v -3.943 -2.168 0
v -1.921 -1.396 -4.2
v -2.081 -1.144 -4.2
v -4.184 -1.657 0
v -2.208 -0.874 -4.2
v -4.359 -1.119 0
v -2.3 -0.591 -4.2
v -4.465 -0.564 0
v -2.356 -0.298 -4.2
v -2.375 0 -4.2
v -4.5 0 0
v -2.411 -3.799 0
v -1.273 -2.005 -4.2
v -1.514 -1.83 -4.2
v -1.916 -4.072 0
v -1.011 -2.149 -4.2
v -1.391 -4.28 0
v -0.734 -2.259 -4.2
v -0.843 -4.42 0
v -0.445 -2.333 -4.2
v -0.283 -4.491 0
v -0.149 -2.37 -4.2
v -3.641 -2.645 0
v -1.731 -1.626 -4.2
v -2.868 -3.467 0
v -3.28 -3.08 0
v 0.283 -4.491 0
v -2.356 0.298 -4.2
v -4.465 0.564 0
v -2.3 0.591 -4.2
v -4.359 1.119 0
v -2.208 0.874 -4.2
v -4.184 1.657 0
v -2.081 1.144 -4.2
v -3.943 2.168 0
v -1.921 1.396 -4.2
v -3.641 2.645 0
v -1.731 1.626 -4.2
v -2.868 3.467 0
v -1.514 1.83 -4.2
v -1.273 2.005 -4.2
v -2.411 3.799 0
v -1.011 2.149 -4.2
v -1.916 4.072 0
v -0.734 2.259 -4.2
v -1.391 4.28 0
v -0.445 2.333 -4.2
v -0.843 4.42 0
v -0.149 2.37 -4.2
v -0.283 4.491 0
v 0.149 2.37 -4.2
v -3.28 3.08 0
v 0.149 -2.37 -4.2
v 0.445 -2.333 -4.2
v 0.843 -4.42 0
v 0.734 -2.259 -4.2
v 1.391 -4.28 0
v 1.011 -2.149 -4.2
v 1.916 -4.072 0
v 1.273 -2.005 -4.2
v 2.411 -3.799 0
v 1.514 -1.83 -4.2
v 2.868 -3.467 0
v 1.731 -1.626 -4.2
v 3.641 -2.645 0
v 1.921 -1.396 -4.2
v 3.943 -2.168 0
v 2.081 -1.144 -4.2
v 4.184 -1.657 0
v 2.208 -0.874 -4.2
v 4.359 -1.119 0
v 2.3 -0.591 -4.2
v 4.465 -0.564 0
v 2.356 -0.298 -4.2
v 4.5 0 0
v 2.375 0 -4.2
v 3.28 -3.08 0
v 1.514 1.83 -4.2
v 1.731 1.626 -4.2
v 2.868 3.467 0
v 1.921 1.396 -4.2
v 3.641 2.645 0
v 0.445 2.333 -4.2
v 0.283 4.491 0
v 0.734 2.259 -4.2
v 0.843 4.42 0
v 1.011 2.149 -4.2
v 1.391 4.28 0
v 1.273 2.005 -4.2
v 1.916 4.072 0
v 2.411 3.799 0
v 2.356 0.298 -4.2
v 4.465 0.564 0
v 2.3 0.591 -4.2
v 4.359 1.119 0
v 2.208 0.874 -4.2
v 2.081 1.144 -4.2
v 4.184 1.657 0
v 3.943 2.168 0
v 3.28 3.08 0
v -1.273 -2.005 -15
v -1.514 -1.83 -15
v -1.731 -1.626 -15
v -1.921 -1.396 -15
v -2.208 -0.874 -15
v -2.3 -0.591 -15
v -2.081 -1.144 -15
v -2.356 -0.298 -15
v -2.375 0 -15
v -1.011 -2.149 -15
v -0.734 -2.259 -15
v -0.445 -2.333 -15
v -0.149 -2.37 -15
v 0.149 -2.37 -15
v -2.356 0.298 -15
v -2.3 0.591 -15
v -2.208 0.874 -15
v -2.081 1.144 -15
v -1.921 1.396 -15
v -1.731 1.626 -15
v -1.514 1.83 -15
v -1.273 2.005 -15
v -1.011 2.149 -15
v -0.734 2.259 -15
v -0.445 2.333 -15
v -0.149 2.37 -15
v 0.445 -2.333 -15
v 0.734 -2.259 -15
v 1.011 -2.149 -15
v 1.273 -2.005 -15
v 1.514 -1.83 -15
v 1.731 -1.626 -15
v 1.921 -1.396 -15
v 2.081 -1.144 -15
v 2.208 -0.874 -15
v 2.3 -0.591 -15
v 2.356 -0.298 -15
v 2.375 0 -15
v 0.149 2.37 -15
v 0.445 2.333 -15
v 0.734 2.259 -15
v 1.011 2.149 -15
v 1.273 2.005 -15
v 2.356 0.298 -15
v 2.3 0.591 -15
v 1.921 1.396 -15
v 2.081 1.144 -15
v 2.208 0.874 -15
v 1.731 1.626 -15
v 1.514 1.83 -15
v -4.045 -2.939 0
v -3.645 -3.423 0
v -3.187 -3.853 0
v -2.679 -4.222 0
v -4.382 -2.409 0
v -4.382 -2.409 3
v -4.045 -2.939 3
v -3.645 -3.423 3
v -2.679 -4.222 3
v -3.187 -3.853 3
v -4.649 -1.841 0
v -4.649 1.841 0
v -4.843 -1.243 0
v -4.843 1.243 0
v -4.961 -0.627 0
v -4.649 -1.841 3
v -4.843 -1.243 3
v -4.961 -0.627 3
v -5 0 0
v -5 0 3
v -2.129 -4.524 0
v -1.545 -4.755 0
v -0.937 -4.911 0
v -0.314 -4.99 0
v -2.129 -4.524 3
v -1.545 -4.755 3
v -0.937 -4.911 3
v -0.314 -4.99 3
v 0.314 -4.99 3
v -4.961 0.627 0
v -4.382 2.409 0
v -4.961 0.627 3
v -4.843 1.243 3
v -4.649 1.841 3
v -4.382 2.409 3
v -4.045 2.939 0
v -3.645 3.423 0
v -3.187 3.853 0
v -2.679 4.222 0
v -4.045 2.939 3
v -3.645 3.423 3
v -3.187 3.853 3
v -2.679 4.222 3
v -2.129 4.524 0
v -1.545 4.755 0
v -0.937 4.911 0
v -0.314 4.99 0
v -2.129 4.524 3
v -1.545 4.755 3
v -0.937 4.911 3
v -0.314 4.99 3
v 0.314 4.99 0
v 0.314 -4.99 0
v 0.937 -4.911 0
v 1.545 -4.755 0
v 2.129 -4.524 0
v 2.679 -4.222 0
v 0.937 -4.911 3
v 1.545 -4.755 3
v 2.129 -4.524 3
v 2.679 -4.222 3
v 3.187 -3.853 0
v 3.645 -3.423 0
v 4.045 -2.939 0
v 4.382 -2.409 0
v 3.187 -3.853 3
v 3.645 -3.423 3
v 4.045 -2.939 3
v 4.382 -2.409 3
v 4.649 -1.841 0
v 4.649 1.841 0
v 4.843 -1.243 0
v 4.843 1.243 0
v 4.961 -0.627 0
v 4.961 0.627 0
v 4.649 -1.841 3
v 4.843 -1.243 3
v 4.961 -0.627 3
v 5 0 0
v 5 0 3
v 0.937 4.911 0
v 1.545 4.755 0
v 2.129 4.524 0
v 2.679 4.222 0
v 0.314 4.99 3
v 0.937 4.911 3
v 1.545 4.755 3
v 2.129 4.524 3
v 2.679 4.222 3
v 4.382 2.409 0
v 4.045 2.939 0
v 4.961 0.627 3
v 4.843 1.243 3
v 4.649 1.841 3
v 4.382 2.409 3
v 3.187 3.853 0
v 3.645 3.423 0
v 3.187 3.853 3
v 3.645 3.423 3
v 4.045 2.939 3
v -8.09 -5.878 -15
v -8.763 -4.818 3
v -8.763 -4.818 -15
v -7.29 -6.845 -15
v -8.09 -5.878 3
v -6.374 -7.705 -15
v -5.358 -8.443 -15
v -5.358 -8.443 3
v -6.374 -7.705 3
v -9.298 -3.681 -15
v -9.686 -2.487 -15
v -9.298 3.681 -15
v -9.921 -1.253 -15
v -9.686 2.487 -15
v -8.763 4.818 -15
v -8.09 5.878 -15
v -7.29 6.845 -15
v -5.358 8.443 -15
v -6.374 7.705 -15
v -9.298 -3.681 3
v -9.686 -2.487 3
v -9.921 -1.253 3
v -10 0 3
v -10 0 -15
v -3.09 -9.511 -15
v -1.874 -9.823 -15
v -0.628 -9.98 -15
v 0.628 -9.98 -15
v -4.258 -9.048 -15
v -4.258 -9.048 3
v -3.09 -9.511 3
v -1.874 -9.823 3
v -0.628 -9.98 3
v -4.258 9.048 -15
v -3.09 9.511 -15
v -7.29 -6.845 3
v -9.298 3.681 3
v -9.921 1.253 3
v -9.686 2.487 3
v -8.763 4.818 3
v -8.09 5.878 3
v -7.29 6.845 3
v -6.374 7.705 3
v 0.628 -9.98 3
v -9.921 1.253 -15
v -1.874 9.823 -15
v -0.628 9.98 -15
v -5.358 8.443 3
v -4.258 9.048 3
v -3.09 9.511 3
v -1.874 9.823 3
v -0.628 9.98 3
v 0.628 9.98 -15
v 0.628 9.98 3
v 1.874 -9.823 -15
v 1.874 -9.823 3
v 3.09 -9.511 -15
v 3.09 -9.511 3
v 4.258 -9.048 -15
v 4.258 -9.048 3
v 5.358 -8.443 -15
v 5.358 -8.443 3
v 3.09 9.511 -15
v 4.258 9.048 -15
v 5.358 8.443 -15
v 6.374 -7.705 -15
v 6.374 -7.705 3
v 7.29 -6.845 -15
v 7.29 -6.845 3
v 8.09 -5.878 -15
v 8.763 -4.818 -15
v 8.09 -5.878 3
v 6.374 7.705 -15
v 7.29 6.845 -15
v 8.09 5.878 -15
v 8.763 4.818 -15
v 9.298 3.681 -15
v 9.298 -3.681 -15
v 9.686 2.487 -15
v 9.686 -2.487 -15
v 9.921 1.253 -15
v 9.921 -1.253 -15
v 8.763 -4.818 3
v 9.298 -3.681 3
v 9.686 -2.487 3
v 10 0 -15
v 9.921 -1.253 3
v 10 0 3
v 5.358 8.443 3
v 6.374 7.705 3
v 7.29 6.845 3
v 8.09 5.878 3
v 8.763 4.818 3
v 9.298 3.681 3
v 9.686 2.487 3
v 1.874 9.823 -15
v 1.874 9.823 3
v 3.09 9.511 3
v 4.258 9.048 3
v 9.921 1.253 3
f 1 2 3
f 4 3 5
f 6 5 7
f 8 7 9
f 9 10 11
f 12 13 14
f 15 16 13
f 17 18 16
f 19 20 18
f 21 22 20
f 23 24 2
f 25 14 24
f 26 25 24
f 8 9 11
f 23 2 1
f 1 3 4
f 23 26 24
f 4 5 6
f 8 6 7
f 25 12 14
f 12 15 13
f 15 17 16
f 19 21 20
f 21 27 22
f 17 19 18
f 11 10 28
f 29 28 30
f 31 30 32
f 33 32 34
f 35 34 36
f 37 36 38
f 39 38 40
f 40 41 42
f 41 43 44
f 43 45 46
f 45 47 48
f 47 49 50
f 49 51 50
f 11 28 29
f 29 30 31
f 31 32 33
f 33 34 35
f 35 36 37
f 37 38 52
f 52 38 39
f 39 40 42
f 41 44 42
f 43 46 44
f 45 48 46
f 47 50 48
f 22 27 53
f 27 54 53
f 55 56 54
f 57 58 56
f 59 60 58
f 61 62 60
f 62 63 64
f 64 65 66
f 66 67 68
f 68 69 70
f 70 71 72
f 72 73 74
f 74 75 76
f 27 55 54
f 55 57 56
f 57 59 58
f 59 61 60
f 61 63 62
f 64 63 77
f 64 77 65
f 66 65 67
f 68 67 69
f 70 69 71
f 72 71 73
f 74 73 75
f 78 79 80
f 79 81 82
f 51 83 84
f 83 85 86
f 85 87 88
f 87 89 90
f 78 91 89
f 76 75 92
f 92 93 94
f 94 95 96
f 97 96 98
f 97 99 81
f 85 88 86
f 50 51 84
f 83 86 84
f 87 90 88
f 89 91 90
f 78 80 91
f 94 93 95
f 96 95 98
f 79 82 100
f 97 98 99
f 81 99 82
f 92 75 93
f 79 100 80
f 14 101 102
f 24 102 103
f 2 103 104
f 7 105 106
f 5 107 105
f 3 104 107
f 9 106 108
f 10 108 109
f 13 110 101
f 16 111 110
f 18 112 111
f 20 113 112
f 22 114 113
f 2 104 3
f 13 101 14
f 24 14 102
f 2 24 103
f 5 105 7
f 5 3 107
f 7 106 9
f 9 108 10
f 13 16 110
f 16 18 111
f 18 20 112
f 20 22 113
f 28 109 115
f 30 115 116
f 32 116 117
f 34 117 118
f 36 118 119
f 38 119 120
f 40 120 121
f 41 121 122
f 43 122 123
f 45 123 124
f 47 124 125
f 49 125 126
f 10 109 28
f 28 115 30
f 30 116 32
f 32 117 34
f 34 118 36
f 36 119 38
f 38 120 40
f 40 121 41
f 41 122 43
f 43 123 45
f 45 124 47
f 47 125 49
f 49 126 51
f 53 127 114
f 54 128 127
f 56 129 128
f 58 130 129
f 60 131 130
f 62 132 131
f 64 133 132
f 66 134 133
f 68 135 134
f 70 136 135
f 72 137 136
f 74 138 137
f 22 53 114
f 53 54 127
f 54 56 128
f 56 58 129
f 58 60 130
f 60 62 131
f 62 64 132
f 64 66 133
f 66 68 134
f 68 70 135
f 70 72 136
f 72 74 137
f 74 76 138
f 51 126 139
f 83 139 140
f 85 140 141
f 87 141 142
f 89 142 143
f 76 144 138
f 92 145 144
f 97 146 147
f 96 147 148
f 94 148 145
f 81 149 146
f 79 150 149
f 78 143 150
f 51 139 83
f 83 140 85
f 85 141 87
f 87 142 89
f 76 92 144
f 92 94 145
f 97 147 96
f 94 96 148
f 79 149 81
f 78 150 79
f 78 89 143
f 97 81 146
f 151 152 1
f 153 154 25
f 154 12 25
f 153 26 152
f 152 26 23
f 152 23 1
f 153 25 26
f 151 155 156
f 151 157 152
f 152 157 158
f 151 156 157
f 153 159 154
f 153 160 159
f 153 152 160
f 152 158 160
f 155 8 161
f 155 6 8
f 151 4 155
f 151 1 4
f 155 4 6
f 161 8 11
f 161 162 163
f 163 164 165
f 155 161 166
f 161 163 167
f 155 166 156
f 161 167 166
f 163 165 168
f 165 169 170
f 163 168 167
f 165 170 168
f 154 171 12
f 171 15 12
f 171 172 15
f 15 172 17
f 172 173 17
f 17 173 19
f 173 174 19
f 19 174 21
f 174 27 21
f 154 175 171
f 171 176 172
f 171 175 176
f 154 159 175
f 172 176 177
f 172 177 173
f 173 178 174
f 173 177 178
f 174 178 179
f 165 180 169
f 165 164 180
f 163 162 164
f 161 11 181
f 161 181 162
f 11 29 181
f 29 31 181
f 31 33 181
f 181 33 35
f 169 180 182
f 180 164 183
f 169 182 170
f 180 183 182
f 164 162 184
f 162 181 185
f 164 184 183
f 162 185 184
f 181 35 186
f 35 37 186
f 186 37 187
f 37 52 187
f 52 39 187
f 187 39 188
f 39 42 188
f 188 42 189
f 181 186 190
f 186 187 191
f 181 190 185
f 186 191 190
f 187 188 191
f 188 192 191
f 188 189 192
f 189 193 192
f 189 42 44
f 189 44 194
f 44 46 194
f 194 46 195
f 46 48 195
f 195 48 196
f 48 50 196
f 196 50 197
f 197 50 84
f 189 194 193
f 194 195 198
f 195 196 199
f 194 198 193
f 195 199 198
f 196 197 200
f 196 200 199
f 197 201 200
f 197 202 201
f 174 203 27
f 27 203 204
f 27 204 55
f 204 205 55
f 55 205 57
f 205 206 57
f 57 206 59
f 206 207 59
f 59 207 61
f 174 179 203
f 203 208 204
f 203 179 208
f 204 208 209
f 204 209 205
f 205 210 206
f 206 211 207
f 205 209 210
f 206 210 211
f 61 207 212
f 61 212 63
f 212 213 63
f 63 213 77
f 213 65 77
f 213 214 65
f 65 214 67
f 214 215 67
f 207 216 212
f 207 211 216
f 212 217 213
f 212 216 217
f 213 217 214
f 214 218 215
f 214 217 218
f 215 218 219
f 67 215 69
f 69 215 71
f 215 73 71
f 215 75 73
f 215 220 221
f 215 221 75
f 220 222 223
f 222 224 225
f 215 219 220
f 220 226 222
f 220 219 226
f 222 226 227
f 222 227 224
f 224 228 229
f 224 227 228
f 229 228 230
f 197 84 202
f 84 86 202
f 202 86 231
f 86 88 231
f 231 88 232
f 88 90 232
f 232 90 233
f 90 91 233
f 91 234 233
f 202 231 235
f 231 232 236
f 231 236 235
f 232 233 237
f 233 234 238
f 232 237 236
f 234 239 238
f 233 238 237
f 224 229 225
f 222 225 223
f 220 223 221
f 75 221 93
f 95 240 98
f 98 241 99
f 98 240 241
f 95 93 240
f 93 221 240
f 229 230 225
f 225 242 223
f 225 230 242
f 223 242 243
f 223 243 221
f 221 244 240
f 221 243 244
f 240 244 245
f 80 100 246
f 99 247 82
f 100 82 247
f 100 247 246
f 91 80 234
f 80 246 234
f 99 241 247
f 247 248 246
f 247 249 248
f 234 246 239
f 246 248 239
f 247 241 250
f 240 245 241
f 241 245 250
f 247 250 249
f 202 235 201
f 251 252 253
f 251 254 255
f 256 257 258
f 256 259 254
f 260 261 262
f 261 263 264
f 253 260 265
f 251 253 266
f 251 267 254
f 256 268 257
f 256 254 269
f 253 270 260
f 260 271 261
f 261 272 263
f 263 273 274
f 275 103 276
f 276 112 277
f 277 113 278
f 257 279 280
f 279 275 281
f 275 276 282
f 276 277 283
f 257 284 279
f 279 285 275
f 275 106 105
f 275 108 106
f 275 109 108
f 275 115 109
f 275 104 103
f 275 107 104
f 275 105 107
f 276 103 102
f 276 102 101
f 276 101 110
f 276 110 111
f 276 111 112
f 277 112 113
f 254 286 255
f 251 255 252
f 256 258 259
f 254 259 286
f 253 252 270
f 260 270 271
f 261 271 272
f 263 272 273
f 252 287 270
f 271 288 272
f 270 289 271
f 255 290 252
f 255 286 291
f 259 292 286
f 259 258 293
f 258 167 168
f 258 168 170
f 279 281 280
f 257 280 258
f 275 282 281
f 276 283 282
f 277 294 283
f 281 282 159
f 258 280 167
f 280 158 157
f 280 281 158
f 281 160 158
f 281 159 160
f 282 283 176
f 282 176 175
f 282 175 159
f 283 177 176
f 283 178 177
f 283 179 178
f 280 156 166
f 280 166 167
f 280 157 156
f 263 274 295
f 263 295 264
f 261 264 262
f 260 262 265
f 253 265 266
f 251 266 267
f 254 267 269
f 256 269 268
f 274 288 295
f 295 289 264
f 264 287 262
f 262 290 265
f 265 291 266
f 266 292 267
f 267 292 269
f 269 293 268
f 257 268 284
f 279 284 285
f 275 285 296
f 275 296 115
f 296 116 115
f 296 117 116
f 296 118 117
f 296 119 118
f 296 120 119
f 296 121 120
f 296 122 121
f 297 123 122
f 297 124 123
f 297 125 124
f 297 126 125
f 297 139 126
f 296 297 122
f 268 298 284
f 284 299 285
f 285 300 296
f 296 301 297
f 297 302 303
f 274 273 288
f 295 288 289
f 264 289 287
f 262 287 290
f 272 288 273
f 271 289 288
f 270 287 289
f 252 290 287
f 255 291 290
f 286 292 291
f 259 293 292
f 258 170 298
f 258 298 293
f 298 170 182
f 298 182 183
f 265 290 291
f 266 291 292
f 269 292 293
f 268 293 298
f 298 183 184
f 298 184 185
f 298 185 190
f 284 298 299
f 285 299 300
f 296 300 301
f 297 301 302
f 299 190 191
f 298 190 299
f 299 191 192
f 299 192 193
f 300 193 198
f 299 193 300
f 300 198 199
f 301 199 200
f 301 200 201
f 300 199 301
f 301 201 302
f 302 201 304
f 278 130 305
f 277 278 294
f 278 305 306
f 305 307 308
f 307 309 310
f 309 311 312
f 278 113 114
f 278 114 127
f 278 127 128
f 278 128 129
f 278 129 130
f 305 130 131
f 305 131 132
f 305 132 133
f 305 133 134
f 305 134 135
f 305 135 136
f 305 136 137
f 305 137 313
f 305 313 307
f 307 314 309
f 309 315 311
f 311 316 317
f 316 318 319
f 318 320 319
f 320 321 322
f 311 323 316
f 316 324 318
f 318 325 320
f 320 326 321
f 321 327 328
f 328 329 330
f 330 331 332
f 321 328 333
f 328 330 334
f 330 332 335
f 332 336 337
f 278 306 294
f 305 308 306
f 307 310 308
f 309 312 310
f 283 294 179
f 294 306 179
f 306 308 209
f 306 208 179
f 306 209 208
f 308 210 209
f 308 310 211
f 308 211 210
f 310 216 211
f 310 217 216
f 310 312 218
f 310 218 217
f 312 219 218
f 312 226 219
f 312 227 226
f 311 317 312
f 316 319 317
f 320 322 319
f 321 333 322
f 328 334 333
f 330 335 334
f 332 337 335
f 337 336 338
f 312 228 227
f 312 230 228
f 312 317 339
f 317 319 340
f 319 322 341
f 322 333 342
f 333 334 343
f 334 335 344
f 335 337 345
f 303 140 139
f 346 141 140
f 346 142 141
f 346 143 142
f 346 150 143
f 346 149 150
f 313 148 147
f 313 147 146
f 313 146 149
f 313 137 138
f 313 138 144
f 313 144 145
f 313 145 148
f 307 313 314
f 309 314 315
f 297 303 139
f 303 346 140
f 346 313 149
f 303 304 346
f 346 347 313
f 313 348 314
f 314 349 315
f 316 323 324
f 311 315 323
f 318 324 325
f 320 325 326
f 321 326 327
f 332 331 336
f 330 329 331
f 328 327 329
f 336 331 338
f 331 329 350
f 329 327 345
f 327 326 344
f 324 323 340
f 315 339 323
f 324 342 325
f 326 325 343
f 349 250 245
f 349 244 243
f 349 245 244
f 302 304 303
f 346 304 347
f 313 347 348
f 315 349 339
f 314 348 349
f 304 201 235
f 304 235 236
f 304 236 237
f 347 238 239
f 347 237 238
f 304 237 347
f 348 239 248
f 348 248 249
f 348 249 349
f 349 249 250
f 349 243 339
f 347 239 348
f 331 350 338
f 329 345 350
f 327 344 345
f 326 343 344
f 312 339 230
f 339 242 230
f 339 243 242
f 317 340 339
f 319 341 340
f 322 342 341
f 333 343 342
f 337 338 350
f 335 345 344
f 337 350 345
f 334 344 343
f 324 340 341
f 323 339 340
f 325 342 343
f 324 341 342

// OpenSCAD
$fn = 50;


difference() {
	union() {
		translate(v = [0, 0, -15.0000000000]) {
			cylinder(h = 18, r = 10.0000000000);
		}
	}
	union() {
		translate(v = [0, 0, 0]) {
			rotate(a = [0, 0, 0]) {
				difference() {
					union() {
						translate(v = [0, 0, -18.0000000000]) {
							cylinder(h = 18, r = 2.2500000000);
						}
						translate(v = [0, 0, -4.2000000000]) {
							cylinder(h = 4.2000000000, r1 = 2.3750000000, r2 = 4.5000000000);
						}
						translate(v = [0, 0, -18.0000000000]) {
							cylinder(h = 18, r = 2.3750000000);
						}
						translate(v = [0, 0, -18.0000000000]) {
							cylinder(h = 18, r = 2.2500000000);
						}
					}
					union();
				}
			}
		}
		#cylinder(h = 3, r = 5.0000000000);
	}
}
